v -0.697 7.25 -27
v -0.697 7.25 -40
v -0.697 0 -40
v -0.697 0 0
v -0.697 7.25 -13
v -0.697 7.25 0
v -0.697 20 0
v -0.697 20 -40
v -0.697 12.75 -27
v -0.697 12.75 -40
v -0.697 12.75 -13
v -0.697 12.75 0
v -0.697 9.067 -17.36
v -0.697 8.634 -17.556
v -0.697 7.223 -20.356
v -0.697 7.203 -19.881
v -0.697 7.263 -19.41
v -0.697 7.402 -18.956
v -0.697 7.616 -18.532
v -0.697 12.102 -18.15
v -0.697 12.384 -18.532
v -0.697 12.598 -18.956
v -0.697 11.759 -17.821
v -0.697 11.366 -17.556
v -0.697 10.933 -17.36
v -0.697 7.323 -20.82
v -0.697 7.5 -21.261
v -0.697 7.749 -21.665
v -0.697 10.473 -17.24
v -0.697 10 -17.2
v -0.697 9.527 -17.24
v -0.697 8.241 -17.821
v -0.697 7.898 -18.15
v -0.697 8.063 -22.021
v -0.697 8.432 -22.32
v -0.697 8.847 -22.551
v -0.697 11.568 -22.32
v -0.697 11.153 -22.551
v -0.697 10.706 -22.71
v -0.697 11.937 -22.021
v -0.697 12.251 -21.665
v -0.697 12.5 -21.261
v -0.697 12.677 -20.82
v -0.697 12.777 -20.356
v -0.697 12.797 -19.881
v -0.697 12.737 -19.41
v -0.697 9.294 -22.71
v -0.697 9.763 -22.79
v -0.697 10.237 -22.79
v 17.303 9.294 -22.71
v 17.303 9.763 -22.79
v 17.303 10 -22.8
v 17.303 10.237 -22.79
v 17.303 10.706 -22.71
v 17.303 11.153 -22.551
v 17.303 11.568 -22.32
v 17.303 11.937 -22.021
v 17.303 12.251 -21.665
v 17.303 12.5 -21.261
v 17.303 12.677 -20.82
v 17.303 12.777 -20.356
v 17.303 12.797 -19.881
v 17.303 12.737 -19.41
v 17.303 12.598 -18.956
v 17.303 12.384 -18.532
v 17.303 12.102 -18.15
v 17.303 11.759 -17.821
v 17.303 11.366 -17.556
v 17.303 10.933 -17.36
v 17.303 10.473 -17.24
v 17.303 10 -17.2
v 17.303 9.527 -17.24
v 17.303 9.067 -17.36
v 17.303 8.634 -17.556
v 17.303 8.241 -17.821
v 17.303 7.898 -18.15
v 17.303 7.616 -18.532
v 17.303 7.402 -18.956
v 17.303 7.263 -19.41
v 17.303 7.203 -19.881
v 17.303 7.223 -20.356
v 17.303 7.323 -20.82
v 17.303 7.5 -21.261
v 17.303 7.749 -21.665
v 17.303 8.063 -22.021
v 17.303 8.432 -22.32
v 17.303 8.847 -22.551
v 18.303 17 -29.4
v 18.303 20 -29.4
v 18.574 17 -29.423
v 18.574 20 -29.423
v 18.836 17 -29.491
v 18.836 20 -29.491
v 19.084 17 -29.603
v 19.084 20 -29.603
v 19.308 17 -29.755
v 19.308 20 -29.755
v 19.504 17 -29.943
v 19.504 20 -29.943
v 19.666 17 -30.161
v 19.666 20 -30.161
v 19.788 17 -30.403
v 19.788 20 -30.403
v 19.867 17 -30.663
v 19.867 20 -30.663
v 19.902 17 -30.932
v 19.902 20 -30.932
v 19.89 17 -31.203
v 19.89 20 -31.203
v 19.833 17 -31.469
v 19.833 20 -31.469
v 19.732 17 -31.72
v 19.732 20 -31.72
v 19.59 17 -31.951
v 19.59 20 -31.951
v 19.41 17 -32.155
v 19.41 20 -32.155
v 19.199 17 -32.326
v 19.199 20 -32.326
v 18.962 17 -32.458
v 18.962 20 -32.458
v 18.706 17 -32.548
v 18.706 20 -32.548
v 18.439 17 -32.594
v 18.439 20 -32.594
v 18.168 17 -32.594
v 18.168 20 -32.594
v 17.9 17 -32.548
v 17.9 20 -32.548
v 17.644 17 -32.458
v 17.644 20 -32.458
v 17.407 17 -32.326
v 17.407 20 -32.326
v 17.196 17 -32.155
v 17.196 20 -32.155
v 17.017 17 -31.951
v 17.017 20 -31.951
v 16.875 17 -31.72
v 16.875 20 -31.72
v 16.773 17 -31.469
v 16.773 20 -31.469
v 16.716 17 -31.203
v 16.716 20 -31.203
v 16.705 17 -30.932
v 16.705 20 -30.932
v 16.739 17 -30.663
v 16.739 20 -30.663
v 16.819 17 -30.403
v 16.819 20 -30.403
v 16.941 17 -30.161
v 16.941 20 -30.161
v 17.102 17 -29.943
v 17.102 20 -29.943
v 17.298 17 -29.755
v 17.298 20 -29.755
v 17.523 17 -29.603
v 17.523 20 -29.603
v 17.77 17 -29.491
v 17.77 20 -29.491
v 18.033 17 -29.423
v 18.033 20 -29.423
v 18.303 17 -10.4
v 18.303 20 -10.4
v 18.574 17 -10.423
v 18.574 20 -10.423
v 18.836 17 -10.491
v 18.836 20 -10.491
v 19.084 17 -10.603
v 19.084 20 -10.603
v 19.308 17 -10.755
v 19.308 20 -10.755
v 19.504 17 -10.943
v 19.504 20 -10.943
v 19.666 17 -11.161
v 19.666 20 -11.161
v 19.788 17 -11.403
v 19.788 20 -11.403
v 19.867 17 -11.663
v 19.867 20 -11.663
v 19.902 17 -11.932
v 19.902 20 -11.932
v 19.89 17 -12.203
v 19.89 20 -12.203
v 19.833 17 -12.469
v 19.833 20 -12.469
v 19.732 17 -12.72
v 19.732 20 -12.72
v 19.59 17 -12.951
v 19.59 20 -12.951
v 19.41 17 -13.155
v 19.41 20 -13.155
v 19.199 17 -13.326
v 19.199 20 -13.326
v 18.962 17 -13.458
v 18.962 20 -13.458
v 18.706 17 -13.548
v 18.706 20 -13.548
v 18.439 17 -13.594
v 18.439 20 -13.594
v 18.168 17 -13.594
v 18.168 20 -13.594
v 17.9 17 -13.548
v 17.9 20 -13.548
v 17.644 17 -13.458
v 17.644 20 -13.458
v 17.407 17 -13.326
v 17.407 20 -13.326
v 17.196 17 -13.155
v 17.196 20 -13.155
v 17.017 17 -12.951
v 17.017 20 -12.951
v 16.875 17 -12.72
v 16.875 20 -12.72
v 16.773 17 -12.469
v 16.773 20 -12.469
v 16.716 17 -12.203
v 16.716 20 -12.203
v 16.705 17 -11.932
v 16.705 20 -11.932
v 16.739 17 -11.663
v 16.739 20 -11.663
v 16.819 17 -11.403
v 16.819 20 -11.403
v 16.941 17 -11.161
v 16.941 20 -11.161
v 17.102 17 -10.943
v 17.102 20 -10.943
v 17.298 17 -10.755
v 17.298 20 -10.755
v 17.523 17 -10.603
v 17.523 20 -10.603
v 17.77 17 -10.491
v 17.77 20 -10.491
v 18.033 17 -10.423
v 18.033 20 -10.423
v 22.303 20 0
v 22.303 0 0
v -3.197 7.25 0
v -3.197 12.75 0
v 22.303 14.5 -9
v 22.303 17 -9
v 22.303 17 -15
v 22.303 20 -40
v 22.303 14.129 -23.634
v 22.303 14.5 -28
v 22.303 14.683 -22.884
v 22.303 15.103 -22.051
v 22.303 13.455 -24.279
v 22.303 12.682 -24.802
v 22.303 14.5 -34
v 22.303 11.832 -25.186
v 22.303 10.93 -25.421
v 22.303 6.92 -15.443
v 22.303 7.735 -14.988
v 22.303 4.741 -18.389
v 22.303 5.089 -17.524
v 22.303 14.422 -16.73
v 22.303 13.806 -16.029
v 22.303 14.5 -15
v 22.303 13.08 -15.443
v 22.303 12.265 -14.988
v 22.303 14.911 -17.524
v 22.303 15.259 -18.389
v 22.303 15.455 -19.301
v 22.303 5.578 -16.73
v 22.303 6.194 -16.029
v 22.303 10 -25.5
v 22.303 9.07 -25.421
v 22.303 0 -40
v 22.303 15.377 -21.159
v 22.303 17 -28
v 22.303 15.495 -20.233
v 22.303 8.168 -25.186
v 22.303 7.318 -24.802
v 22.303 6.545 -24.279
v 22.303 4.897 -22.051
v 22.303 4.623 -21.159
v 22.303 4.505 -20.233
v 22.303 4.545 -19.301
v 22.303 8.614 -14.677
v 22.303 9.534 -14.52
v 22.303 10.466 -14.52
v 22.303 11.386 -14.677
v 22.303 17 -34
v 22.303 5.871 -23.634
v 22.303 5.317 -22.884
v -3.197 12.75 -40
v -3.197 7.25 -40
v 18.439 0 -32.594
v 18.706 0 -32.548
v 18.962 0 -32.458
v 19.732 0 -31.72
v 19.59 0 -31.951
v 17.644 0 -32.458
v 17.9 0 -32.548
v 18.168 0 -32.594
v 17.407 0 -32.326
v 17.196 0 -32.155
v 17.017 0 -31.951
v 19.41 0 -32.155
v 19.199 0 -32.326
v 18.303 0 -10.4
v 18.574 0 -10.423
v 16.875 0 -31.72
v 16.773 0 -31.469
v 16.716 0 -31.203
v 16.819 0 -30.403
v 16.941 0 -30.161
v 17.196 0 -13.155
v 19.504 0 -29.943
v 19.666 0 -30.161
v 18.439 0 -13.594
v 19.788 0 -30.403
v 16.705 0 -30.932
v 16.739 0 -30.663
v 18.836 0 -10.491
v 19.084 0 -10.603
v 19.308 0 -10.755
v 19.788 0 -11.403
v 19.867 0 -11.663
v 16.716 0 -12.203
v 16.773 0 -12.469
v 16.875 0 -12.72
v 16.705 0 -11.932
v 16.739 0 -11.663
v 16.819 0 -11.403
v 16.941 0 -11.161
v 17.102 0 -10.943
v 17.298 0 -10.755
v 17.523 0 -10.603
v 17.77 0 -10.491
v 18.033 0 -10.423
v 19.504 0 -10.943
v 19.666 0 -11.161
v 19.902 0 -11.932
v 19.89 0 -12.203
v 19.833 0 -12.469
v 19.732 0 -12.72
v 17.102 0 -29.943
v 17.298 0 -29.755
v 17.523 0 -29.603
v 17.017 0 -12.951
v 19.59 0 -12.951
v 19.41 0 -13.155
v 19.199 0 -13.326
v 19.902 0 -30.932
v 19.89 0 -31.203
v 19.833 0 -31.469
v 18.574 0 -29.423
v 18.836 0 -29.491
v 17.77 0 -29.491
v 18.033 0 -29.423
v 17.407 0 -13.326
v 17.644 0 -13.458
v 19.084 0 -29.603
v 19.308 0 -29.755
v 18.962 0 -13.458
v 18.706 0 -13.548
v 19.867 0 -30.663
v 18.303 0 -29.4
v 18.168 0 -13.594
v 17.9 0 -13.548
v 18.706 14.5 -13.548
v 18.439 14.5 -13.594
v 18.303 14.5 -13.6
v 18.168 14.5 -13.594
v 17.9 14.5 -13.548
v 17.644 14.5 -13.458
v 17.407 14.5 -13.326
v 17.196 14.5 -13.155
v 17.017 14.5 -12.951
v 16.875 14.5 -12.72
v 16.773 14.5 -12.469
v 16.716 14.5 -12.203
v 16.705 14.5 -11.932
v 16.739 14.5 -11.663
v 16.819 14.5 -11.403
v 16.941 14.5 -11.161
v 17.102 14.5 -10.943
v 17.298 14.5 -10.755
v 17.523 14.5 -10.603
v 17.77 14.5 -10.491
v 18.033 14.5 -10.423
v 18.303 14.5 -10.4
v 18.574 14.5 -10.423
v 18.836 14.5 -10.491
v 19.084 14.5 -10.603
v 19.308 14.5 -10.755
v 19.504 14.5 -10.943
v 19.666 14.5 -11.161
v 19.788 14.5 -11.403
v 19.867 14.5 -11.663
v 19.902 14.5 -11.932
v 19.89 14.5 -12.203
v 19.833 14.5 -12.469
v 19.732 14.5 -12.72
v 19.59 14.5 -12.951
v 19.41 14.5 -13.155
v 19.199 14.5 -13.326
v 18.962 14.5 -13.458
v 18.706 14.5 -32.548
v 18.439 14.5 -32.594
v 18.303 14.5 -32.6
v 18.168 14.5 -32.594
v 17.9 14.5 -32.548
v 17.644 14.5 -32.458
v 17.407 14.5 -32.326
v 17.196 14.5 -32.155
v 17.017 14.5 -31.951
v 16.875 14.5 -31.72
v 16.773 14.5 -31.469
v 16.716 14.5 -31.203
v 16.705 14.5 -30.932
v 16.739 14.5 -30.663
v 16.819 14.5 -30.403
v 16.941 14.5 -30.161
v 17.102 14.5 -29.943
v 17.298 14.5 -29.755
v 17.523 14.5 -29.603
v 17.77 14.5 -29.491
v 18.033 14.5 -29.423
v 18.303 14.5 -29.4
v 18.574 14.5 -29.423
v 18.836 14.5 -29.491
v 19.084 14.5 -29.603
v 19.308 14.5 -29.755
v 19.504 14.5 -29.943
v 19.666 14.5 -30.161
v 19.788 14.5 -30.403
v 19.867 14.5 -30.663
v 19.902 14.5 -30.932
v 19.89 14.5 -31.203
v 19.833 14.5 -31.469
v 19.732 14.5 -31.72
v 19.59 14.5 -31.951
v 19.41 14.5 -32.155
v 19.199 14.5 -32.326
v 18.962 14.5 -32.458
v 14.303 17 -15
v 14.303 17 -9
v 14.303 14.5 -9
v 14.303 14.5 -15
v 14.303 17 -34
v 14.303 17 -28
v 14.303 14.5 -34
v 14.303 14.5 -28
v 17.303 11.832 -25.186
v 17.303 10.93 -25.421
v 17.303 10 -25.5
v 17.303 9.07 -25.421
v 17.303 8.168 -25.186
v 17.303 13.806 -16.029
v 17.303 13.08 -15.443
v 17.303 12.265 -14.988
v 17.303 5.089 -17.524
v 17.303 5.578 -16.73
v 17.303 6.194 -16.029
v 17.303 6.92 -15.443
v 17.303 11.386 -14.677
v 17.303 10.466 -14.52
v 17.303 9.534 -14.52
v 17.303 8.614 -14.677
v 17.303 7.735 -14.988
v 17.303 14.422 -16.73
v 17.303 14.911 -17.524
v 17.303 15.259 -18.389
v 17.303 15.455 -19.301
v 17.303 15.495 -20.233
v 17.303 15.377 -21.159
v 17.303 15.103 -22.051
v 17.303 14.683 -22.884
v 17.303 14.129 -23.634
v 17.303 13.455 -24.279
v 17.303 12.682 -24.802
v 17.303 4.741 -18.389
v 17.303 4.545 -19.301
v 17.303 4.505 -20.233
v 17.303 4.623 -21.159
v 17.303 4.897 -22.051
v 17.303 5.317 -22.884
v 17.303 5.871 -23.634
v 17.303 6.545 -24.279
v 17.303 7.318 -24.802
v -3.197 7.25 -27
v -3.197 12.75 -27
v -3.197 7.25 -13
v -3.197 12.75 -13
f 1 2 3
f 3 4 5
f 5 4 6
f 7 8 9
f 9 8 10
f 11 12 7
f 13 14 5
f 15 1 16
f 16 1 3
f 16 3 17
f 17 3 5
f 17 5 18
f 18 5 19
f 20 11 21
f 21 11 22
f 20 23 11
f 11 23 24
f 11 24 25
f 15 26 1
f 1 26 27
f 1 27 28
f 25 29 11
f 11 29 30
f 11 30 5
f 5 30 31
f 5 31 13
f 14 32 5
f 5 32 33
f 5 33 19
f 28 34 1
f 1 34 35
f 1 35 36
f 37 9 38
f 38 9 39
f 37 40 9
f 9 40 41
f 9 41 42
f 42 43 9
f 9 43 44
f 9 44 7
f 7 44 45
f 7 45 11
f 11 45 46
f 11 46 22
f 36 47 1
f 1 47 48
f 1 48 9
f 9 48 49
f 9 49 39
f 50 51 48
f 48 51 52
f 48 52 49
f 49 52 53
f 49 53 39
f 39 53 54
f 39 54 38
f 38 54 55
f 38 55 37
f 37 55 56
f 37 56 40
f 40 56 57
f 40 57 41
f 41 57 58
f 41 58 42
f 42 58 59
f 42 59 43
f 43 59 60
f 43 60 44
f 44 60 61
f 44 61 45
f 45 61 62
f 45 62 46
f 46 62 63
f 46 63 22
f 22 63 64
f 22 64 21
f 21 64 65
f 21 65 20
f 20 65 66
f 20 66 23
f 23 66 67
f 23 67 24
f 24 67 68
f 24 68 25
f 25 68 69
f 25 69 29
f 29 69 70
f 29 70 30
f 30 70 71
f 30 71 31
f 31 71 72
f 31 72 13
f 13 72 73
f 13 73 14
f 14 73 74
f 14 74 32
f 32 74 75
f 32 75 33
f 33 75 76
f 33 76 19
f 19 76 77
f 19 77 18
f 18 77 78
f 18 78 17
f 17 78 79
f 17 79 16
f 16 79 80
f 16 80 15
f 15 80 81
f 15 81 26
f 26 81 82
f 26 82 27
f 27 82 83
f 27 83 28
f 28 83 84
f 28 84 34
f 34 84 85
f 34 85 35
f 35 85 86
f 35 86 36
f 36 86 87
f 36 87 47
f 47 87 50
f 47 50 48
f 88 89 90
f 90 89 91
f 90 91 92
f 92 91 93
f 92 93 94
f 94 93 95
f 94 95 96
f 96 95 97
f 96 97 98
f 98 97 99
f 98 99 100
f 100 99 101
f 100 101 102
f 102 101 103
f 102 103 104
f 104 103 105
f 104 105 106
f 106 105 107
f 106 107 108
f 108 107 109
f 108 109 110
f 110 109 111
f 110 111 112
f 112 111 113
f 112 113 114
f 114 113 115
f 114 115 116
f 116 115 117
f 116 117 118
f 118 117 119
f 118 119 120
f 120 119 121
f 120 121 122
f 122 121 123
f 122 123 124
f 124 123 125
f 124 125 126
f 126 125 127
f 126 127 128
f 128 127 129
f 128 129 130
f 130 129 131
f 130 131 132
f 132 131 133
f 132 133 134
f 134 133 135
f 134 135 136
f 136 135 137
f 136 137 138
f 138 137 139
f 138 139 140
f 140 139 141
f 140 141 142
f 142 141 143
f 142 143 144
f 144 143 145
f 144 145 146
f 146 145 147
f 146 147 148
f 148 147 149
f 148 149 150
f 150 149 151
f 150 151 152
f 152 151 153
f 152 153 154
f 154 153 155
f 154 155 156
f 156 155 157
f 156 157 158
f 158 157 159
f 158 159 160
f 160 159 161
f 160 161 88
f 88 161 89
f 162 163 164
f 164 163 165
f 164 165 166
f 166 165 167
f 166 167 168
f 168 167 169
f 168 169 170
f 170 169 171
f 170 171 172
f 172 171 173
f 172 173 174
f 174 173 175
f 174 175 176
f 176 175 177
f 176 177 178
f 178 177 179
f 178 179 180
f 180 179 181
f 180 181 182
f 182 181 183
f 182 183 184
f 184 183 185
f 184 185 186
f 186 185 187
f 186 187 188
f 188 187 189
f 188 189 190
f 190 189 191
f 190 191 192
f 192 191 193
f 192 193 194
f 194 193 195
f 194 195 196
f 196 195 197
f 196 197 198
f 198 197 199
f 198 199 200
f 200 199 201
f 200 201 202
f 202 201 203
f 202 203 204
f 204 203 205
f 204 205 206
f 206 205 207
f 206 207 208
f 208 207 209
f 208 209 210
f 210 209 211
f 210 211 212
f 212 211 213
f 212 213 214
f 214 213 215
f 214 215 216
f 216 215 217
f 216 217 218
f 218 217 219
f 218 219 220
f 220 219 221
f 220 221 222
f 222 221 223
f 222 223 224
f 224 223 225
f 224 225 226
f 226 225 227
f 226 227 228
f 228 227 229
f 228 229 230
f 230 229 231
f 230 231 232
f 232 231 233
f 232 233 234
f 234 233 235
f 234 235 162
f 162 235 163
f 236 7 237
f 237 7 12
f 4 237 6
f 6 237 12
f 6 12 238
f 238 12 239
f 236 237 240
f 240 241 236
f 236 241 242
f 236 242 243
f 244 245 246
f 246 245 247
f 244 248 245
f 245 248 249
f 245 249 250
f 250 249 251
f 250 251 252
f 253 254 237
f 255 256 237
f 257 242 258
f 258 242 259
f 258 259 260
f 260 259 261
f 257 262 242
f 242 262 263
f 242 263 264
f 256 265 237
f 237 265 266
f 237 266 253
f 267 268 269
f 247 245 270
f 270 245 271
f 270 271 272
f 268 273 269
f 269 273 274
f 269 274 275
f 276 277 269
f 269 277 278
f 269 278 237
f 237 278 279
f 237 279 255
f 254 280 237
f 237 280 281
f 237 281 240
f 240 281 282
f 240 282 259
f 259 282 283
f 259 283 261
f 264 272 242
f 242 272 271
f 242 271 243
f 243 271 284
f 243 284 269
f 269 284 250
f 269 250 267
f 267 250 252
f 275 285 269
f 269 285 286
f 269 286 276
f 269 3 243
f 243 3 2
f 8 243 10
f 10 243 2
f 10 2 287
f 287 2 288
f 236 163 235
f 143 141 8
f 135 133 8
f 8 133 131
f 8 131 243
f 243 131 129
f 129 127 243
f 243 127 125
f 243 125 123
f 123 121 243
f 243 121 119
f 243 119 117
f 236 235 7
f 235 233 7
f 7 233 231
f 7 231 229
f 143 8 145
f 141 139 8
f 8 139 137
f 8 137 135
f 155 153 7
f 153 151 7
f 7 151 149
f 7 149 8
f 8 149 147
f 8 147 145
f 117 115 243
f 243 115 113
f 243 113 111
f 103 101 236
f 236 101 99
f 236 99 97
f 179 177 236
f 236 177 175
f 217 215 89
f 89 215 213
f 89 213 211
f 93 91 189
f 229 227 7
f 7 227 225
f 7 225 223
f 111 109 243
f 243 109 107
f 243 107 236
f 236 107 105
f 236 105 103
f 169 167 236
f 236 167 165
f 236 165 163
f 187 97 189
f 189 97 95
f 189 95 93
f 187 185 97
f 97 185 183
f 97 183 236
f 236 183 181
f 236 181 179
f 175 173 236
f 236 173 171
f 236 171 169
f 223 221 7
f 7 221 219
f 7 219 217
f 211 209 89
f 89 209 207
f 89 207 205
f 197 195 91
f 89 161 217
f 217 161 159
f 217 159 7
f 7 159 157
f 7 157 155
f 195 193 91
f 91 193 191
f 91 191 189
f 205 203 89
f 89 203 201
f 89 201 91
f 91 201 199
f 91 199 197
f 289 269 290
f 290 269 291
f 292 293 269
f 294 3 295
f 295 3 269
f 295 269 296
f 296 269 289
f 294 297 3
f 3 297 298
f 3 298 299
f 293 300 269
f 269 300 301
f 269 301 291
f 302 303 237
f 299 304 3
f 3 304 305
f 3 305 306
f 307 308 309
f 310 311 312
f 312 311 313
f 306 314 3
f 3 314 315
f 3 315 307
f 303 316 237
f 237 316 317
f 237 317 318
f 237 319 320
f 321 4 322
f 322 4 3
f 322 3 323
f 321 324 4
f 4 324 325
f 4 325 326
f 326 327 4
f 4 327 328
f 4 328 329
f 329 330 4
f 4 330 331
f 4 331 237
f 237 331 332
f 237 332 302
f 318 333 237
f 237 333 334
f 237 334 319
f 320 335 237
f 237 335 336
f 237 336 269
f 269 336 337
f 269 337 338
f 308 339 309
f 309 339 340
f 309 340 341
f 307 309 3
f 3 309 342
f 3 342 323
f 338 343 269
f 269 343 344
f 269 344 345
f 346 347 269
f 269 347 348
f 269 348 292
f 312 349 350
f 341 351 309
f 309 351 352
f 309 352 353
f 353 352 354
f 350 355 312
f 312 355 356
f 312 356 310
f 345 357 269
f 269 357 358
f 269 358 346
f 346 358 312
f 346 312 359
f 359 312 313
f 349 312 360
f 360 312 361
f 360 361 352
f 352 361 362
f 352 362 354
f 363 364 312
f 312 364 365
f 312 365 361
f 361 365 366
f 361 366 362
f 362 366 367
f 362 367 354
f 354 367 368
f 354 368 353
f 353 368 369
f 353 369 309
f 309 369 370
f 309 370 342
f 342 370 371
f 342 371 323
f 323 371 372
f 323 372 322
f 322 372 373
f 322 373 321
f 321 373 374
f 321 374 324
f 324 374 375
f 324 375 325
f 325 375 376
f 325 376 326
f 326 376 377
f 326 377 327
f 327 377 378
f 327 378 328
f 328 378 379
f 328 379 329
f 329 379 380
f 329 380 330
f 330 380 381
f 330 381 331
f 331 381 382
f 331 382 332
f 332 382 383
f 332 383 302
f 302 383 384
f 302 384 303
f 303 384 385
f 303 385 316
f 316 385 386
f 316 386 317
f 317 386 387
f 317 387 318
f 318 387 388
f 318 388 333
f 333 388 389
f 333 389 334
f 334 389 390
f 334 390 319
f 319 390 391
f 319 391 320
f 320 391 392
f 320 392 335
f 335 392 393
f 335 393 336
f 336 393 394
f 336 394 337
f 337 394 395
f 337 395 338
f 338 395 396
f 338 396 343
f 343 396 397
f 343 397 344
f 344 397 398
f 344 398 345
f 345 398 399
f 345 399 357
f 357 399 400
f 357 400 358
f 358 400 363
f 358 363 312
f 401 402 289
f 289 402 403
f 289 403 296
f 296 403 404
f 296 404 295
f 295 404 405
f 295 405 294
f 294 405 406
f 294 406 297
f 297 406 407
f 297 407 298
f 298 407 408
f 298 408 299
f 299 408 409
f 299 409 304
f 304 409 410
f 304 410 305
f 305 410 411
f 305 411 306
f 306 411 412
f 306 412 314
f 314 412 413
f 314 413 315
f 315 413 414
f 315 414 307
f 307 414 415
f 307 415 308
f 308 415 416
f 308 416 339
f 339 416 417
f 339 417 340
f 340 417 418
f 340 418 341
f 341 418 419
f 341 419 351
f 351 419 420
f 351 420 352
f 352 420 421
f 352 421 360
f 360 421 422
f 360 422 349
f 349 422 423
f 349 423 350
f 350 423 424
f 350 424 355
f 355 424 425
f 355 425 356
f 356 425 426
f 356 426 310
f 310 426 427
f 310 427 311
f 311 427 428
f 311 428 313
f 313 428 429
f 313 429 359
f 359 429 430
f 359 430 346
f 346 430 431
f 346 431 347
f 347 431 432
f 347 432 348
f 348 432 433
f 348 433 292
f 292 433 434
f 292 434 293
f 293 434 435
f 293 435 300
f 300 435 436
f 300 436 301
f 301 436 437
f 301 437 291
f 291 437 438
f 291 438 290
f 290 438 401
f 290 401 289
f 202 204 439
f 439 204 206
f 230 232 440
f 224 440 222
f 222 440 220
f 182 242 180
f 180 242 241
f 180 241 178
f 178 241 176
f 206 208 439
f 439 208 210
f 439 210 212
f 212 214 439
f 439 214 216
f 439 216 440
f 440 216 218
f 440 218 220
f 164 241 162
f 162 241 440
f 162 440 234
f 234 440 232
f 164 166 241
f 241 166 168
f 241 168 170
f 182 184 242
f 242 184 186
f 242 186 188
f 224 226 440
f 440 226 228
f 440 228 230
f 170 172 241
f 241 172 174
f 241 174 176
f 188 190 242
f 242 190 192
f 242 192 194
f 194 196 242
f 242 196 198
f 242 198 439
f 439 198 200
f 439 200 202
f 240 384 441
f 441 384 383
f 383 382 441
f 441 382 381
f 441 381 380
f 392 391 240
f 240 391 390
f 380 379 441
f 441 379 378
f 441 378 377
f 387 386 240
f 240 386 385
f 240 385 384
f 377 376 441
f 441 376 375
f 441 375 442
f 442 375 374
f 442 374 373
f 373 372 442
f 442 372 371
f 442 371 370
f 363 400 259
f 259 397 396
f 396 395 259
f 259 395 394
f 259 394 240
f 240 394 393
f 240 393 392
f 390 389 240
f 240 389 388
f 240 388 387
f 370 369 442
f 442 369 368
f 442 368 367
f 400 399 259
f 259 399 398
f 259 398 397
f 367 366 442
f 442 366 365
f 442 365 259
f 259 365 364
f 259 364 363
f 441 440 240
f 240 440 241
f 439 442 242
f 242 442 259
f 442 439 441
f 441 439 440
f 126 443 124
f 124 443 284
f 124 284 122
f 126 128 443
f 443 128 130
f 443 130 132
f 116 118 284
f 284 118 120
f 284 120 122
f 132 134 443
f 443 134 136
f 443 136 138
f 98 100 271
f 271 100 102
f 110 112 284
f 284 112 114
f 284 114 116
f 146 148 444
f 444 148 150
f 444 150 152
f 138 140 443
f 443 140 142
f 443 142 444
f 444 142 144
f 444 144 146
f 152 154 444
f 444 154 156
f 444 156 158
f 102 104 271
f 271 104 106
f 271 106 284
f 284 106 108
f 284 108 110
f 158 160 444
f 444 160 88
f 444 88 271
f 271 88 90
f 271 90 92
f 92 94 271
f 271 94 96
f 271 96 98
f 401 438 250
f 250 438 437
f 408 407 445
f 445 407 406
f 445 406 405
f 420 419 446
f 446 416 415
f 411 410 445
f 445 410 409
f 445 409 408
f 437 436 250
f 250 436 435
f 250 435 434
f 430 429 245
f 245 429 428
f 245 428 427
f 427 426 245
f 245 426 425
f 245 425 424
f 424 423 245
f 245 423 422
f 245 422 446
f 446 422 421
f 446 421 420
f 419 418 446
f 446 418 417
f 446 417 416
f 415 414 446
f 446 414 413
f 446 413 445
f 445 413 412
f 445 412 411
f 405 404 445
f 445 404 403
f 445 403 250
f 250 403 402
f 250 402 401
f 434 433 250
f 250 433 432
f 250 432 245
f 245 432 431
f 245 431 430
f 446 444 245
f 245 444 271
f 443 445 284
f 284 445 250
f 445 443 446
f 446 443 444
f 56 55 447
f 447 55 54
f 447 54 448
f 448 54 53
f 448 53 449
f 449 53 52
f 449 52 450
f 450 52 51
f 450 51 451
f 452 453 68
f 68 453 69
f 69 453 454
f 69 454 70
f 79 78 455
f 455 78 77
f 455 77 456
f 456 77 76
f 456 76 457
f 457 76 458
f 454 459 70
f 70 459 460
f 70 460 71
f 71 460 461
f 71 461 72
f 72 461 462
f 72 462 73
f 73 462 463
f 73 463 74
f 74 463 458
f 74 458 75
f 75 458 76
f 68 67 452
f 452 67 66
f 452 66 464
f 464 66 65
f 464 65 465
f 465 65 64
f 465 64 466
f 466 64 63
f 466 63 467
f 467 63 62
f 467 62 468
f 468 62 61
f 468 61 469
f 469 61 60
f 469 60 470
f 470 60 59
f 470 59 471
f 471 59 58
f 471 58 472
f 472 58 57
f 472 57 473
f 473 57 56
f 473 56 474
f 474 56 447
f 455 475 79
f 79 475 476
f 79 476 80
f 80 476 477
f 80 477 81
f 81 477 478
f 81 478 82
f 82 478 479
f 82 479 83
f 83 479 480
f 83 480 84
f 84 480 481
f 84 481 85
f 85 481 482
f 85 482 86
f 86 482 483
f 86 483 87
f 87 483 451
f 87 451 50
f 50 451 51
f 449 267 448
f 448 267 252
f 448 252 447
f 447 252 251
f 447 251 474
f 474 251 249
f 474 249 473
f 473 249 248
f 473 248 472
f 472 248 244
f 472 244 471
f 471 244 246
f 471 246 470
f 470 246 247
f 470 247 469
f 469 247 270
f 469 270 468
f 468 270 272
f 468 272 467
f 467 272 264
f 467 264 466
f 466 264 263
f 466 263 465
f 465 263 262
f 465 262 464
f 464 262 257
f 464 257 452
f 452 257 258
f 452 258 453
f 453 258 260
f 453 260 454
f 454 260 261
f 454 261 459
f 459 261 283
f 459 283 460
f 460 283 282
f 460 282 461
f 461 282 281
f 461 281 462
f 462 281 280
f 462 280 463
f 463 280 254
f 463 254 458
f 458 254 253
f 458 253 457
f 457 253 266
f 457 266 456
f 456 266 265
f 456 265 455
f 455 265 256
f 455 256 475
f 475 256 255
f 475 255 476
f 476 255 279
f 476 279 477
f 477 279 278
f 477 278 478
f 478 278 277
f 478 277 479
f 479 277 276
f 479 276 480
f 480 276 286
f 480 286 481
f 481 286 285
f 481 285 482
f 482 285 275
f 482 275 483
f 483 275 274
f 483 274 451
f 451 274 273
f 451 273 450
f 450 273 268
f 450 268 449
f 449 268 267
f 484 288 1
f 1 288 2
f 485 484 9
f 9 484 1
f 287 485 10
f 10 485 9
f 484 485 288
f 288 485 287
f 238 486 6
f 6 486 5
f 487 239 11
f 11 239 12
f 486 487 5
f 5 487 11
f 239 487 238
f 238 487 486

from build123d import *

# Parameters (mm, degrees)
SKETCH1_W           = 23
SKETCH1_H           = 40
BOSS_EXTRUDE1_DEPTH = 20
SKETCH5_R           = 1.6
CUT_EXTRUDE3_DEPTH  = 21
SKETCH6_W           = 6
SKETCH6_H           = 2.5
CUT_EXTRUDE4_DEPTH  = 8
SKETCH7_R           = 2.8
CUT_EXTRUDE5_DEPTH  = 24
SKETCH8_R           = 5.5
CUT_EXTRUDE6_DEPTH  = 5
SKETCH9_W           = 13
SKETCH9_H           = 5.5
BOSS_EXTRUDE6_DEPTH = 2.5


with BuildPart() as part:
    # Sketch1 → Boss-Extrude1 (new body)
    with BuildSketch(Plane(origin=(0, 0, 0), x_dir=(1, 0, 0), z_dir=(0, 1, 0))):
        with Locations((10.80324178, 20)):
            Rectangle(SKETCH1_W, SKETCH1_H)
    extrude(amount=BOSS_EXTRUDE1_DEPTH)

    # Sketch5 → Cut-Extrude3 (cut, through all)
    with BuildSketch(Plane(origin=(0, 20, 0), x_dir=(1, 0, 0), z_dir=(0, 1, 0))):
        with Locations((18.30324178, 12)):
            Circle(SKETCH5_R)
        with Locations((18.30324178, 31)):
            Circle(SKETCH5_R)
    extrude(amount=-CUT_EXTRUDE3_DEPTH, mode=Mode.SUBTRACT)

    # Sketch6 → Cut-Extrude4 (cut)
    with BuildSketch(Plane(origin=(22.30324178, 0, 0), x_dir=(0, 0, -1), z_dir=(1, 0, 0))):
        with Locations((12, 15.75)):
            Rectangle(SKETCH6_W, SKETCH6_H)
        with Locations((31, 15.75)):
            Rectangle(SKETCH6_W, SKETCH6_H)
    extrude(amount=-CUT_EXTRUDE4_DEPTH, mode=Mode.SUBTRACT)

    # Sketch7 → Cut-Extrude5 (cut, through all)
    with BuildSketch(Plane.ZY.offset(0.69675822)):
        with Locations((-20, 10)):
            Circle(SKETCH7_R)
    extrude(amount=-CUT_EXTRUDE5_DEPTH, mode=Mode.SUBTRACT)

    # Sketch8 → Cut-Extrude6 (cut)
    with BuildSketch(Plane(origin=(22.30324178, 0, 0), x_dir=(0, 0, -1), z_dir=(1, 0, 0))):
        with Locations((20, 10)):
            Circle(SKETCH8_R)
    extrude(amount=-CUT_EXTRUDE6_DEPTH, mode=Mode.SUBTRACT)

    # Sketch9 → Boss-Extrude6 (add)
    with BuildSketch(Plane.ZY.offset(0.69675822)):
        with Locations((-33.5, 10)):
            Rectangle(SKETCH9_W, SKETCH9_H)
        with Locations((-6.5, 10)):
            Rectangle(SKETCH9_W, SKETCH9_H)
    extrude(amount=BOSS_EXTRUDE6_DEPTH)


solid = part.part
